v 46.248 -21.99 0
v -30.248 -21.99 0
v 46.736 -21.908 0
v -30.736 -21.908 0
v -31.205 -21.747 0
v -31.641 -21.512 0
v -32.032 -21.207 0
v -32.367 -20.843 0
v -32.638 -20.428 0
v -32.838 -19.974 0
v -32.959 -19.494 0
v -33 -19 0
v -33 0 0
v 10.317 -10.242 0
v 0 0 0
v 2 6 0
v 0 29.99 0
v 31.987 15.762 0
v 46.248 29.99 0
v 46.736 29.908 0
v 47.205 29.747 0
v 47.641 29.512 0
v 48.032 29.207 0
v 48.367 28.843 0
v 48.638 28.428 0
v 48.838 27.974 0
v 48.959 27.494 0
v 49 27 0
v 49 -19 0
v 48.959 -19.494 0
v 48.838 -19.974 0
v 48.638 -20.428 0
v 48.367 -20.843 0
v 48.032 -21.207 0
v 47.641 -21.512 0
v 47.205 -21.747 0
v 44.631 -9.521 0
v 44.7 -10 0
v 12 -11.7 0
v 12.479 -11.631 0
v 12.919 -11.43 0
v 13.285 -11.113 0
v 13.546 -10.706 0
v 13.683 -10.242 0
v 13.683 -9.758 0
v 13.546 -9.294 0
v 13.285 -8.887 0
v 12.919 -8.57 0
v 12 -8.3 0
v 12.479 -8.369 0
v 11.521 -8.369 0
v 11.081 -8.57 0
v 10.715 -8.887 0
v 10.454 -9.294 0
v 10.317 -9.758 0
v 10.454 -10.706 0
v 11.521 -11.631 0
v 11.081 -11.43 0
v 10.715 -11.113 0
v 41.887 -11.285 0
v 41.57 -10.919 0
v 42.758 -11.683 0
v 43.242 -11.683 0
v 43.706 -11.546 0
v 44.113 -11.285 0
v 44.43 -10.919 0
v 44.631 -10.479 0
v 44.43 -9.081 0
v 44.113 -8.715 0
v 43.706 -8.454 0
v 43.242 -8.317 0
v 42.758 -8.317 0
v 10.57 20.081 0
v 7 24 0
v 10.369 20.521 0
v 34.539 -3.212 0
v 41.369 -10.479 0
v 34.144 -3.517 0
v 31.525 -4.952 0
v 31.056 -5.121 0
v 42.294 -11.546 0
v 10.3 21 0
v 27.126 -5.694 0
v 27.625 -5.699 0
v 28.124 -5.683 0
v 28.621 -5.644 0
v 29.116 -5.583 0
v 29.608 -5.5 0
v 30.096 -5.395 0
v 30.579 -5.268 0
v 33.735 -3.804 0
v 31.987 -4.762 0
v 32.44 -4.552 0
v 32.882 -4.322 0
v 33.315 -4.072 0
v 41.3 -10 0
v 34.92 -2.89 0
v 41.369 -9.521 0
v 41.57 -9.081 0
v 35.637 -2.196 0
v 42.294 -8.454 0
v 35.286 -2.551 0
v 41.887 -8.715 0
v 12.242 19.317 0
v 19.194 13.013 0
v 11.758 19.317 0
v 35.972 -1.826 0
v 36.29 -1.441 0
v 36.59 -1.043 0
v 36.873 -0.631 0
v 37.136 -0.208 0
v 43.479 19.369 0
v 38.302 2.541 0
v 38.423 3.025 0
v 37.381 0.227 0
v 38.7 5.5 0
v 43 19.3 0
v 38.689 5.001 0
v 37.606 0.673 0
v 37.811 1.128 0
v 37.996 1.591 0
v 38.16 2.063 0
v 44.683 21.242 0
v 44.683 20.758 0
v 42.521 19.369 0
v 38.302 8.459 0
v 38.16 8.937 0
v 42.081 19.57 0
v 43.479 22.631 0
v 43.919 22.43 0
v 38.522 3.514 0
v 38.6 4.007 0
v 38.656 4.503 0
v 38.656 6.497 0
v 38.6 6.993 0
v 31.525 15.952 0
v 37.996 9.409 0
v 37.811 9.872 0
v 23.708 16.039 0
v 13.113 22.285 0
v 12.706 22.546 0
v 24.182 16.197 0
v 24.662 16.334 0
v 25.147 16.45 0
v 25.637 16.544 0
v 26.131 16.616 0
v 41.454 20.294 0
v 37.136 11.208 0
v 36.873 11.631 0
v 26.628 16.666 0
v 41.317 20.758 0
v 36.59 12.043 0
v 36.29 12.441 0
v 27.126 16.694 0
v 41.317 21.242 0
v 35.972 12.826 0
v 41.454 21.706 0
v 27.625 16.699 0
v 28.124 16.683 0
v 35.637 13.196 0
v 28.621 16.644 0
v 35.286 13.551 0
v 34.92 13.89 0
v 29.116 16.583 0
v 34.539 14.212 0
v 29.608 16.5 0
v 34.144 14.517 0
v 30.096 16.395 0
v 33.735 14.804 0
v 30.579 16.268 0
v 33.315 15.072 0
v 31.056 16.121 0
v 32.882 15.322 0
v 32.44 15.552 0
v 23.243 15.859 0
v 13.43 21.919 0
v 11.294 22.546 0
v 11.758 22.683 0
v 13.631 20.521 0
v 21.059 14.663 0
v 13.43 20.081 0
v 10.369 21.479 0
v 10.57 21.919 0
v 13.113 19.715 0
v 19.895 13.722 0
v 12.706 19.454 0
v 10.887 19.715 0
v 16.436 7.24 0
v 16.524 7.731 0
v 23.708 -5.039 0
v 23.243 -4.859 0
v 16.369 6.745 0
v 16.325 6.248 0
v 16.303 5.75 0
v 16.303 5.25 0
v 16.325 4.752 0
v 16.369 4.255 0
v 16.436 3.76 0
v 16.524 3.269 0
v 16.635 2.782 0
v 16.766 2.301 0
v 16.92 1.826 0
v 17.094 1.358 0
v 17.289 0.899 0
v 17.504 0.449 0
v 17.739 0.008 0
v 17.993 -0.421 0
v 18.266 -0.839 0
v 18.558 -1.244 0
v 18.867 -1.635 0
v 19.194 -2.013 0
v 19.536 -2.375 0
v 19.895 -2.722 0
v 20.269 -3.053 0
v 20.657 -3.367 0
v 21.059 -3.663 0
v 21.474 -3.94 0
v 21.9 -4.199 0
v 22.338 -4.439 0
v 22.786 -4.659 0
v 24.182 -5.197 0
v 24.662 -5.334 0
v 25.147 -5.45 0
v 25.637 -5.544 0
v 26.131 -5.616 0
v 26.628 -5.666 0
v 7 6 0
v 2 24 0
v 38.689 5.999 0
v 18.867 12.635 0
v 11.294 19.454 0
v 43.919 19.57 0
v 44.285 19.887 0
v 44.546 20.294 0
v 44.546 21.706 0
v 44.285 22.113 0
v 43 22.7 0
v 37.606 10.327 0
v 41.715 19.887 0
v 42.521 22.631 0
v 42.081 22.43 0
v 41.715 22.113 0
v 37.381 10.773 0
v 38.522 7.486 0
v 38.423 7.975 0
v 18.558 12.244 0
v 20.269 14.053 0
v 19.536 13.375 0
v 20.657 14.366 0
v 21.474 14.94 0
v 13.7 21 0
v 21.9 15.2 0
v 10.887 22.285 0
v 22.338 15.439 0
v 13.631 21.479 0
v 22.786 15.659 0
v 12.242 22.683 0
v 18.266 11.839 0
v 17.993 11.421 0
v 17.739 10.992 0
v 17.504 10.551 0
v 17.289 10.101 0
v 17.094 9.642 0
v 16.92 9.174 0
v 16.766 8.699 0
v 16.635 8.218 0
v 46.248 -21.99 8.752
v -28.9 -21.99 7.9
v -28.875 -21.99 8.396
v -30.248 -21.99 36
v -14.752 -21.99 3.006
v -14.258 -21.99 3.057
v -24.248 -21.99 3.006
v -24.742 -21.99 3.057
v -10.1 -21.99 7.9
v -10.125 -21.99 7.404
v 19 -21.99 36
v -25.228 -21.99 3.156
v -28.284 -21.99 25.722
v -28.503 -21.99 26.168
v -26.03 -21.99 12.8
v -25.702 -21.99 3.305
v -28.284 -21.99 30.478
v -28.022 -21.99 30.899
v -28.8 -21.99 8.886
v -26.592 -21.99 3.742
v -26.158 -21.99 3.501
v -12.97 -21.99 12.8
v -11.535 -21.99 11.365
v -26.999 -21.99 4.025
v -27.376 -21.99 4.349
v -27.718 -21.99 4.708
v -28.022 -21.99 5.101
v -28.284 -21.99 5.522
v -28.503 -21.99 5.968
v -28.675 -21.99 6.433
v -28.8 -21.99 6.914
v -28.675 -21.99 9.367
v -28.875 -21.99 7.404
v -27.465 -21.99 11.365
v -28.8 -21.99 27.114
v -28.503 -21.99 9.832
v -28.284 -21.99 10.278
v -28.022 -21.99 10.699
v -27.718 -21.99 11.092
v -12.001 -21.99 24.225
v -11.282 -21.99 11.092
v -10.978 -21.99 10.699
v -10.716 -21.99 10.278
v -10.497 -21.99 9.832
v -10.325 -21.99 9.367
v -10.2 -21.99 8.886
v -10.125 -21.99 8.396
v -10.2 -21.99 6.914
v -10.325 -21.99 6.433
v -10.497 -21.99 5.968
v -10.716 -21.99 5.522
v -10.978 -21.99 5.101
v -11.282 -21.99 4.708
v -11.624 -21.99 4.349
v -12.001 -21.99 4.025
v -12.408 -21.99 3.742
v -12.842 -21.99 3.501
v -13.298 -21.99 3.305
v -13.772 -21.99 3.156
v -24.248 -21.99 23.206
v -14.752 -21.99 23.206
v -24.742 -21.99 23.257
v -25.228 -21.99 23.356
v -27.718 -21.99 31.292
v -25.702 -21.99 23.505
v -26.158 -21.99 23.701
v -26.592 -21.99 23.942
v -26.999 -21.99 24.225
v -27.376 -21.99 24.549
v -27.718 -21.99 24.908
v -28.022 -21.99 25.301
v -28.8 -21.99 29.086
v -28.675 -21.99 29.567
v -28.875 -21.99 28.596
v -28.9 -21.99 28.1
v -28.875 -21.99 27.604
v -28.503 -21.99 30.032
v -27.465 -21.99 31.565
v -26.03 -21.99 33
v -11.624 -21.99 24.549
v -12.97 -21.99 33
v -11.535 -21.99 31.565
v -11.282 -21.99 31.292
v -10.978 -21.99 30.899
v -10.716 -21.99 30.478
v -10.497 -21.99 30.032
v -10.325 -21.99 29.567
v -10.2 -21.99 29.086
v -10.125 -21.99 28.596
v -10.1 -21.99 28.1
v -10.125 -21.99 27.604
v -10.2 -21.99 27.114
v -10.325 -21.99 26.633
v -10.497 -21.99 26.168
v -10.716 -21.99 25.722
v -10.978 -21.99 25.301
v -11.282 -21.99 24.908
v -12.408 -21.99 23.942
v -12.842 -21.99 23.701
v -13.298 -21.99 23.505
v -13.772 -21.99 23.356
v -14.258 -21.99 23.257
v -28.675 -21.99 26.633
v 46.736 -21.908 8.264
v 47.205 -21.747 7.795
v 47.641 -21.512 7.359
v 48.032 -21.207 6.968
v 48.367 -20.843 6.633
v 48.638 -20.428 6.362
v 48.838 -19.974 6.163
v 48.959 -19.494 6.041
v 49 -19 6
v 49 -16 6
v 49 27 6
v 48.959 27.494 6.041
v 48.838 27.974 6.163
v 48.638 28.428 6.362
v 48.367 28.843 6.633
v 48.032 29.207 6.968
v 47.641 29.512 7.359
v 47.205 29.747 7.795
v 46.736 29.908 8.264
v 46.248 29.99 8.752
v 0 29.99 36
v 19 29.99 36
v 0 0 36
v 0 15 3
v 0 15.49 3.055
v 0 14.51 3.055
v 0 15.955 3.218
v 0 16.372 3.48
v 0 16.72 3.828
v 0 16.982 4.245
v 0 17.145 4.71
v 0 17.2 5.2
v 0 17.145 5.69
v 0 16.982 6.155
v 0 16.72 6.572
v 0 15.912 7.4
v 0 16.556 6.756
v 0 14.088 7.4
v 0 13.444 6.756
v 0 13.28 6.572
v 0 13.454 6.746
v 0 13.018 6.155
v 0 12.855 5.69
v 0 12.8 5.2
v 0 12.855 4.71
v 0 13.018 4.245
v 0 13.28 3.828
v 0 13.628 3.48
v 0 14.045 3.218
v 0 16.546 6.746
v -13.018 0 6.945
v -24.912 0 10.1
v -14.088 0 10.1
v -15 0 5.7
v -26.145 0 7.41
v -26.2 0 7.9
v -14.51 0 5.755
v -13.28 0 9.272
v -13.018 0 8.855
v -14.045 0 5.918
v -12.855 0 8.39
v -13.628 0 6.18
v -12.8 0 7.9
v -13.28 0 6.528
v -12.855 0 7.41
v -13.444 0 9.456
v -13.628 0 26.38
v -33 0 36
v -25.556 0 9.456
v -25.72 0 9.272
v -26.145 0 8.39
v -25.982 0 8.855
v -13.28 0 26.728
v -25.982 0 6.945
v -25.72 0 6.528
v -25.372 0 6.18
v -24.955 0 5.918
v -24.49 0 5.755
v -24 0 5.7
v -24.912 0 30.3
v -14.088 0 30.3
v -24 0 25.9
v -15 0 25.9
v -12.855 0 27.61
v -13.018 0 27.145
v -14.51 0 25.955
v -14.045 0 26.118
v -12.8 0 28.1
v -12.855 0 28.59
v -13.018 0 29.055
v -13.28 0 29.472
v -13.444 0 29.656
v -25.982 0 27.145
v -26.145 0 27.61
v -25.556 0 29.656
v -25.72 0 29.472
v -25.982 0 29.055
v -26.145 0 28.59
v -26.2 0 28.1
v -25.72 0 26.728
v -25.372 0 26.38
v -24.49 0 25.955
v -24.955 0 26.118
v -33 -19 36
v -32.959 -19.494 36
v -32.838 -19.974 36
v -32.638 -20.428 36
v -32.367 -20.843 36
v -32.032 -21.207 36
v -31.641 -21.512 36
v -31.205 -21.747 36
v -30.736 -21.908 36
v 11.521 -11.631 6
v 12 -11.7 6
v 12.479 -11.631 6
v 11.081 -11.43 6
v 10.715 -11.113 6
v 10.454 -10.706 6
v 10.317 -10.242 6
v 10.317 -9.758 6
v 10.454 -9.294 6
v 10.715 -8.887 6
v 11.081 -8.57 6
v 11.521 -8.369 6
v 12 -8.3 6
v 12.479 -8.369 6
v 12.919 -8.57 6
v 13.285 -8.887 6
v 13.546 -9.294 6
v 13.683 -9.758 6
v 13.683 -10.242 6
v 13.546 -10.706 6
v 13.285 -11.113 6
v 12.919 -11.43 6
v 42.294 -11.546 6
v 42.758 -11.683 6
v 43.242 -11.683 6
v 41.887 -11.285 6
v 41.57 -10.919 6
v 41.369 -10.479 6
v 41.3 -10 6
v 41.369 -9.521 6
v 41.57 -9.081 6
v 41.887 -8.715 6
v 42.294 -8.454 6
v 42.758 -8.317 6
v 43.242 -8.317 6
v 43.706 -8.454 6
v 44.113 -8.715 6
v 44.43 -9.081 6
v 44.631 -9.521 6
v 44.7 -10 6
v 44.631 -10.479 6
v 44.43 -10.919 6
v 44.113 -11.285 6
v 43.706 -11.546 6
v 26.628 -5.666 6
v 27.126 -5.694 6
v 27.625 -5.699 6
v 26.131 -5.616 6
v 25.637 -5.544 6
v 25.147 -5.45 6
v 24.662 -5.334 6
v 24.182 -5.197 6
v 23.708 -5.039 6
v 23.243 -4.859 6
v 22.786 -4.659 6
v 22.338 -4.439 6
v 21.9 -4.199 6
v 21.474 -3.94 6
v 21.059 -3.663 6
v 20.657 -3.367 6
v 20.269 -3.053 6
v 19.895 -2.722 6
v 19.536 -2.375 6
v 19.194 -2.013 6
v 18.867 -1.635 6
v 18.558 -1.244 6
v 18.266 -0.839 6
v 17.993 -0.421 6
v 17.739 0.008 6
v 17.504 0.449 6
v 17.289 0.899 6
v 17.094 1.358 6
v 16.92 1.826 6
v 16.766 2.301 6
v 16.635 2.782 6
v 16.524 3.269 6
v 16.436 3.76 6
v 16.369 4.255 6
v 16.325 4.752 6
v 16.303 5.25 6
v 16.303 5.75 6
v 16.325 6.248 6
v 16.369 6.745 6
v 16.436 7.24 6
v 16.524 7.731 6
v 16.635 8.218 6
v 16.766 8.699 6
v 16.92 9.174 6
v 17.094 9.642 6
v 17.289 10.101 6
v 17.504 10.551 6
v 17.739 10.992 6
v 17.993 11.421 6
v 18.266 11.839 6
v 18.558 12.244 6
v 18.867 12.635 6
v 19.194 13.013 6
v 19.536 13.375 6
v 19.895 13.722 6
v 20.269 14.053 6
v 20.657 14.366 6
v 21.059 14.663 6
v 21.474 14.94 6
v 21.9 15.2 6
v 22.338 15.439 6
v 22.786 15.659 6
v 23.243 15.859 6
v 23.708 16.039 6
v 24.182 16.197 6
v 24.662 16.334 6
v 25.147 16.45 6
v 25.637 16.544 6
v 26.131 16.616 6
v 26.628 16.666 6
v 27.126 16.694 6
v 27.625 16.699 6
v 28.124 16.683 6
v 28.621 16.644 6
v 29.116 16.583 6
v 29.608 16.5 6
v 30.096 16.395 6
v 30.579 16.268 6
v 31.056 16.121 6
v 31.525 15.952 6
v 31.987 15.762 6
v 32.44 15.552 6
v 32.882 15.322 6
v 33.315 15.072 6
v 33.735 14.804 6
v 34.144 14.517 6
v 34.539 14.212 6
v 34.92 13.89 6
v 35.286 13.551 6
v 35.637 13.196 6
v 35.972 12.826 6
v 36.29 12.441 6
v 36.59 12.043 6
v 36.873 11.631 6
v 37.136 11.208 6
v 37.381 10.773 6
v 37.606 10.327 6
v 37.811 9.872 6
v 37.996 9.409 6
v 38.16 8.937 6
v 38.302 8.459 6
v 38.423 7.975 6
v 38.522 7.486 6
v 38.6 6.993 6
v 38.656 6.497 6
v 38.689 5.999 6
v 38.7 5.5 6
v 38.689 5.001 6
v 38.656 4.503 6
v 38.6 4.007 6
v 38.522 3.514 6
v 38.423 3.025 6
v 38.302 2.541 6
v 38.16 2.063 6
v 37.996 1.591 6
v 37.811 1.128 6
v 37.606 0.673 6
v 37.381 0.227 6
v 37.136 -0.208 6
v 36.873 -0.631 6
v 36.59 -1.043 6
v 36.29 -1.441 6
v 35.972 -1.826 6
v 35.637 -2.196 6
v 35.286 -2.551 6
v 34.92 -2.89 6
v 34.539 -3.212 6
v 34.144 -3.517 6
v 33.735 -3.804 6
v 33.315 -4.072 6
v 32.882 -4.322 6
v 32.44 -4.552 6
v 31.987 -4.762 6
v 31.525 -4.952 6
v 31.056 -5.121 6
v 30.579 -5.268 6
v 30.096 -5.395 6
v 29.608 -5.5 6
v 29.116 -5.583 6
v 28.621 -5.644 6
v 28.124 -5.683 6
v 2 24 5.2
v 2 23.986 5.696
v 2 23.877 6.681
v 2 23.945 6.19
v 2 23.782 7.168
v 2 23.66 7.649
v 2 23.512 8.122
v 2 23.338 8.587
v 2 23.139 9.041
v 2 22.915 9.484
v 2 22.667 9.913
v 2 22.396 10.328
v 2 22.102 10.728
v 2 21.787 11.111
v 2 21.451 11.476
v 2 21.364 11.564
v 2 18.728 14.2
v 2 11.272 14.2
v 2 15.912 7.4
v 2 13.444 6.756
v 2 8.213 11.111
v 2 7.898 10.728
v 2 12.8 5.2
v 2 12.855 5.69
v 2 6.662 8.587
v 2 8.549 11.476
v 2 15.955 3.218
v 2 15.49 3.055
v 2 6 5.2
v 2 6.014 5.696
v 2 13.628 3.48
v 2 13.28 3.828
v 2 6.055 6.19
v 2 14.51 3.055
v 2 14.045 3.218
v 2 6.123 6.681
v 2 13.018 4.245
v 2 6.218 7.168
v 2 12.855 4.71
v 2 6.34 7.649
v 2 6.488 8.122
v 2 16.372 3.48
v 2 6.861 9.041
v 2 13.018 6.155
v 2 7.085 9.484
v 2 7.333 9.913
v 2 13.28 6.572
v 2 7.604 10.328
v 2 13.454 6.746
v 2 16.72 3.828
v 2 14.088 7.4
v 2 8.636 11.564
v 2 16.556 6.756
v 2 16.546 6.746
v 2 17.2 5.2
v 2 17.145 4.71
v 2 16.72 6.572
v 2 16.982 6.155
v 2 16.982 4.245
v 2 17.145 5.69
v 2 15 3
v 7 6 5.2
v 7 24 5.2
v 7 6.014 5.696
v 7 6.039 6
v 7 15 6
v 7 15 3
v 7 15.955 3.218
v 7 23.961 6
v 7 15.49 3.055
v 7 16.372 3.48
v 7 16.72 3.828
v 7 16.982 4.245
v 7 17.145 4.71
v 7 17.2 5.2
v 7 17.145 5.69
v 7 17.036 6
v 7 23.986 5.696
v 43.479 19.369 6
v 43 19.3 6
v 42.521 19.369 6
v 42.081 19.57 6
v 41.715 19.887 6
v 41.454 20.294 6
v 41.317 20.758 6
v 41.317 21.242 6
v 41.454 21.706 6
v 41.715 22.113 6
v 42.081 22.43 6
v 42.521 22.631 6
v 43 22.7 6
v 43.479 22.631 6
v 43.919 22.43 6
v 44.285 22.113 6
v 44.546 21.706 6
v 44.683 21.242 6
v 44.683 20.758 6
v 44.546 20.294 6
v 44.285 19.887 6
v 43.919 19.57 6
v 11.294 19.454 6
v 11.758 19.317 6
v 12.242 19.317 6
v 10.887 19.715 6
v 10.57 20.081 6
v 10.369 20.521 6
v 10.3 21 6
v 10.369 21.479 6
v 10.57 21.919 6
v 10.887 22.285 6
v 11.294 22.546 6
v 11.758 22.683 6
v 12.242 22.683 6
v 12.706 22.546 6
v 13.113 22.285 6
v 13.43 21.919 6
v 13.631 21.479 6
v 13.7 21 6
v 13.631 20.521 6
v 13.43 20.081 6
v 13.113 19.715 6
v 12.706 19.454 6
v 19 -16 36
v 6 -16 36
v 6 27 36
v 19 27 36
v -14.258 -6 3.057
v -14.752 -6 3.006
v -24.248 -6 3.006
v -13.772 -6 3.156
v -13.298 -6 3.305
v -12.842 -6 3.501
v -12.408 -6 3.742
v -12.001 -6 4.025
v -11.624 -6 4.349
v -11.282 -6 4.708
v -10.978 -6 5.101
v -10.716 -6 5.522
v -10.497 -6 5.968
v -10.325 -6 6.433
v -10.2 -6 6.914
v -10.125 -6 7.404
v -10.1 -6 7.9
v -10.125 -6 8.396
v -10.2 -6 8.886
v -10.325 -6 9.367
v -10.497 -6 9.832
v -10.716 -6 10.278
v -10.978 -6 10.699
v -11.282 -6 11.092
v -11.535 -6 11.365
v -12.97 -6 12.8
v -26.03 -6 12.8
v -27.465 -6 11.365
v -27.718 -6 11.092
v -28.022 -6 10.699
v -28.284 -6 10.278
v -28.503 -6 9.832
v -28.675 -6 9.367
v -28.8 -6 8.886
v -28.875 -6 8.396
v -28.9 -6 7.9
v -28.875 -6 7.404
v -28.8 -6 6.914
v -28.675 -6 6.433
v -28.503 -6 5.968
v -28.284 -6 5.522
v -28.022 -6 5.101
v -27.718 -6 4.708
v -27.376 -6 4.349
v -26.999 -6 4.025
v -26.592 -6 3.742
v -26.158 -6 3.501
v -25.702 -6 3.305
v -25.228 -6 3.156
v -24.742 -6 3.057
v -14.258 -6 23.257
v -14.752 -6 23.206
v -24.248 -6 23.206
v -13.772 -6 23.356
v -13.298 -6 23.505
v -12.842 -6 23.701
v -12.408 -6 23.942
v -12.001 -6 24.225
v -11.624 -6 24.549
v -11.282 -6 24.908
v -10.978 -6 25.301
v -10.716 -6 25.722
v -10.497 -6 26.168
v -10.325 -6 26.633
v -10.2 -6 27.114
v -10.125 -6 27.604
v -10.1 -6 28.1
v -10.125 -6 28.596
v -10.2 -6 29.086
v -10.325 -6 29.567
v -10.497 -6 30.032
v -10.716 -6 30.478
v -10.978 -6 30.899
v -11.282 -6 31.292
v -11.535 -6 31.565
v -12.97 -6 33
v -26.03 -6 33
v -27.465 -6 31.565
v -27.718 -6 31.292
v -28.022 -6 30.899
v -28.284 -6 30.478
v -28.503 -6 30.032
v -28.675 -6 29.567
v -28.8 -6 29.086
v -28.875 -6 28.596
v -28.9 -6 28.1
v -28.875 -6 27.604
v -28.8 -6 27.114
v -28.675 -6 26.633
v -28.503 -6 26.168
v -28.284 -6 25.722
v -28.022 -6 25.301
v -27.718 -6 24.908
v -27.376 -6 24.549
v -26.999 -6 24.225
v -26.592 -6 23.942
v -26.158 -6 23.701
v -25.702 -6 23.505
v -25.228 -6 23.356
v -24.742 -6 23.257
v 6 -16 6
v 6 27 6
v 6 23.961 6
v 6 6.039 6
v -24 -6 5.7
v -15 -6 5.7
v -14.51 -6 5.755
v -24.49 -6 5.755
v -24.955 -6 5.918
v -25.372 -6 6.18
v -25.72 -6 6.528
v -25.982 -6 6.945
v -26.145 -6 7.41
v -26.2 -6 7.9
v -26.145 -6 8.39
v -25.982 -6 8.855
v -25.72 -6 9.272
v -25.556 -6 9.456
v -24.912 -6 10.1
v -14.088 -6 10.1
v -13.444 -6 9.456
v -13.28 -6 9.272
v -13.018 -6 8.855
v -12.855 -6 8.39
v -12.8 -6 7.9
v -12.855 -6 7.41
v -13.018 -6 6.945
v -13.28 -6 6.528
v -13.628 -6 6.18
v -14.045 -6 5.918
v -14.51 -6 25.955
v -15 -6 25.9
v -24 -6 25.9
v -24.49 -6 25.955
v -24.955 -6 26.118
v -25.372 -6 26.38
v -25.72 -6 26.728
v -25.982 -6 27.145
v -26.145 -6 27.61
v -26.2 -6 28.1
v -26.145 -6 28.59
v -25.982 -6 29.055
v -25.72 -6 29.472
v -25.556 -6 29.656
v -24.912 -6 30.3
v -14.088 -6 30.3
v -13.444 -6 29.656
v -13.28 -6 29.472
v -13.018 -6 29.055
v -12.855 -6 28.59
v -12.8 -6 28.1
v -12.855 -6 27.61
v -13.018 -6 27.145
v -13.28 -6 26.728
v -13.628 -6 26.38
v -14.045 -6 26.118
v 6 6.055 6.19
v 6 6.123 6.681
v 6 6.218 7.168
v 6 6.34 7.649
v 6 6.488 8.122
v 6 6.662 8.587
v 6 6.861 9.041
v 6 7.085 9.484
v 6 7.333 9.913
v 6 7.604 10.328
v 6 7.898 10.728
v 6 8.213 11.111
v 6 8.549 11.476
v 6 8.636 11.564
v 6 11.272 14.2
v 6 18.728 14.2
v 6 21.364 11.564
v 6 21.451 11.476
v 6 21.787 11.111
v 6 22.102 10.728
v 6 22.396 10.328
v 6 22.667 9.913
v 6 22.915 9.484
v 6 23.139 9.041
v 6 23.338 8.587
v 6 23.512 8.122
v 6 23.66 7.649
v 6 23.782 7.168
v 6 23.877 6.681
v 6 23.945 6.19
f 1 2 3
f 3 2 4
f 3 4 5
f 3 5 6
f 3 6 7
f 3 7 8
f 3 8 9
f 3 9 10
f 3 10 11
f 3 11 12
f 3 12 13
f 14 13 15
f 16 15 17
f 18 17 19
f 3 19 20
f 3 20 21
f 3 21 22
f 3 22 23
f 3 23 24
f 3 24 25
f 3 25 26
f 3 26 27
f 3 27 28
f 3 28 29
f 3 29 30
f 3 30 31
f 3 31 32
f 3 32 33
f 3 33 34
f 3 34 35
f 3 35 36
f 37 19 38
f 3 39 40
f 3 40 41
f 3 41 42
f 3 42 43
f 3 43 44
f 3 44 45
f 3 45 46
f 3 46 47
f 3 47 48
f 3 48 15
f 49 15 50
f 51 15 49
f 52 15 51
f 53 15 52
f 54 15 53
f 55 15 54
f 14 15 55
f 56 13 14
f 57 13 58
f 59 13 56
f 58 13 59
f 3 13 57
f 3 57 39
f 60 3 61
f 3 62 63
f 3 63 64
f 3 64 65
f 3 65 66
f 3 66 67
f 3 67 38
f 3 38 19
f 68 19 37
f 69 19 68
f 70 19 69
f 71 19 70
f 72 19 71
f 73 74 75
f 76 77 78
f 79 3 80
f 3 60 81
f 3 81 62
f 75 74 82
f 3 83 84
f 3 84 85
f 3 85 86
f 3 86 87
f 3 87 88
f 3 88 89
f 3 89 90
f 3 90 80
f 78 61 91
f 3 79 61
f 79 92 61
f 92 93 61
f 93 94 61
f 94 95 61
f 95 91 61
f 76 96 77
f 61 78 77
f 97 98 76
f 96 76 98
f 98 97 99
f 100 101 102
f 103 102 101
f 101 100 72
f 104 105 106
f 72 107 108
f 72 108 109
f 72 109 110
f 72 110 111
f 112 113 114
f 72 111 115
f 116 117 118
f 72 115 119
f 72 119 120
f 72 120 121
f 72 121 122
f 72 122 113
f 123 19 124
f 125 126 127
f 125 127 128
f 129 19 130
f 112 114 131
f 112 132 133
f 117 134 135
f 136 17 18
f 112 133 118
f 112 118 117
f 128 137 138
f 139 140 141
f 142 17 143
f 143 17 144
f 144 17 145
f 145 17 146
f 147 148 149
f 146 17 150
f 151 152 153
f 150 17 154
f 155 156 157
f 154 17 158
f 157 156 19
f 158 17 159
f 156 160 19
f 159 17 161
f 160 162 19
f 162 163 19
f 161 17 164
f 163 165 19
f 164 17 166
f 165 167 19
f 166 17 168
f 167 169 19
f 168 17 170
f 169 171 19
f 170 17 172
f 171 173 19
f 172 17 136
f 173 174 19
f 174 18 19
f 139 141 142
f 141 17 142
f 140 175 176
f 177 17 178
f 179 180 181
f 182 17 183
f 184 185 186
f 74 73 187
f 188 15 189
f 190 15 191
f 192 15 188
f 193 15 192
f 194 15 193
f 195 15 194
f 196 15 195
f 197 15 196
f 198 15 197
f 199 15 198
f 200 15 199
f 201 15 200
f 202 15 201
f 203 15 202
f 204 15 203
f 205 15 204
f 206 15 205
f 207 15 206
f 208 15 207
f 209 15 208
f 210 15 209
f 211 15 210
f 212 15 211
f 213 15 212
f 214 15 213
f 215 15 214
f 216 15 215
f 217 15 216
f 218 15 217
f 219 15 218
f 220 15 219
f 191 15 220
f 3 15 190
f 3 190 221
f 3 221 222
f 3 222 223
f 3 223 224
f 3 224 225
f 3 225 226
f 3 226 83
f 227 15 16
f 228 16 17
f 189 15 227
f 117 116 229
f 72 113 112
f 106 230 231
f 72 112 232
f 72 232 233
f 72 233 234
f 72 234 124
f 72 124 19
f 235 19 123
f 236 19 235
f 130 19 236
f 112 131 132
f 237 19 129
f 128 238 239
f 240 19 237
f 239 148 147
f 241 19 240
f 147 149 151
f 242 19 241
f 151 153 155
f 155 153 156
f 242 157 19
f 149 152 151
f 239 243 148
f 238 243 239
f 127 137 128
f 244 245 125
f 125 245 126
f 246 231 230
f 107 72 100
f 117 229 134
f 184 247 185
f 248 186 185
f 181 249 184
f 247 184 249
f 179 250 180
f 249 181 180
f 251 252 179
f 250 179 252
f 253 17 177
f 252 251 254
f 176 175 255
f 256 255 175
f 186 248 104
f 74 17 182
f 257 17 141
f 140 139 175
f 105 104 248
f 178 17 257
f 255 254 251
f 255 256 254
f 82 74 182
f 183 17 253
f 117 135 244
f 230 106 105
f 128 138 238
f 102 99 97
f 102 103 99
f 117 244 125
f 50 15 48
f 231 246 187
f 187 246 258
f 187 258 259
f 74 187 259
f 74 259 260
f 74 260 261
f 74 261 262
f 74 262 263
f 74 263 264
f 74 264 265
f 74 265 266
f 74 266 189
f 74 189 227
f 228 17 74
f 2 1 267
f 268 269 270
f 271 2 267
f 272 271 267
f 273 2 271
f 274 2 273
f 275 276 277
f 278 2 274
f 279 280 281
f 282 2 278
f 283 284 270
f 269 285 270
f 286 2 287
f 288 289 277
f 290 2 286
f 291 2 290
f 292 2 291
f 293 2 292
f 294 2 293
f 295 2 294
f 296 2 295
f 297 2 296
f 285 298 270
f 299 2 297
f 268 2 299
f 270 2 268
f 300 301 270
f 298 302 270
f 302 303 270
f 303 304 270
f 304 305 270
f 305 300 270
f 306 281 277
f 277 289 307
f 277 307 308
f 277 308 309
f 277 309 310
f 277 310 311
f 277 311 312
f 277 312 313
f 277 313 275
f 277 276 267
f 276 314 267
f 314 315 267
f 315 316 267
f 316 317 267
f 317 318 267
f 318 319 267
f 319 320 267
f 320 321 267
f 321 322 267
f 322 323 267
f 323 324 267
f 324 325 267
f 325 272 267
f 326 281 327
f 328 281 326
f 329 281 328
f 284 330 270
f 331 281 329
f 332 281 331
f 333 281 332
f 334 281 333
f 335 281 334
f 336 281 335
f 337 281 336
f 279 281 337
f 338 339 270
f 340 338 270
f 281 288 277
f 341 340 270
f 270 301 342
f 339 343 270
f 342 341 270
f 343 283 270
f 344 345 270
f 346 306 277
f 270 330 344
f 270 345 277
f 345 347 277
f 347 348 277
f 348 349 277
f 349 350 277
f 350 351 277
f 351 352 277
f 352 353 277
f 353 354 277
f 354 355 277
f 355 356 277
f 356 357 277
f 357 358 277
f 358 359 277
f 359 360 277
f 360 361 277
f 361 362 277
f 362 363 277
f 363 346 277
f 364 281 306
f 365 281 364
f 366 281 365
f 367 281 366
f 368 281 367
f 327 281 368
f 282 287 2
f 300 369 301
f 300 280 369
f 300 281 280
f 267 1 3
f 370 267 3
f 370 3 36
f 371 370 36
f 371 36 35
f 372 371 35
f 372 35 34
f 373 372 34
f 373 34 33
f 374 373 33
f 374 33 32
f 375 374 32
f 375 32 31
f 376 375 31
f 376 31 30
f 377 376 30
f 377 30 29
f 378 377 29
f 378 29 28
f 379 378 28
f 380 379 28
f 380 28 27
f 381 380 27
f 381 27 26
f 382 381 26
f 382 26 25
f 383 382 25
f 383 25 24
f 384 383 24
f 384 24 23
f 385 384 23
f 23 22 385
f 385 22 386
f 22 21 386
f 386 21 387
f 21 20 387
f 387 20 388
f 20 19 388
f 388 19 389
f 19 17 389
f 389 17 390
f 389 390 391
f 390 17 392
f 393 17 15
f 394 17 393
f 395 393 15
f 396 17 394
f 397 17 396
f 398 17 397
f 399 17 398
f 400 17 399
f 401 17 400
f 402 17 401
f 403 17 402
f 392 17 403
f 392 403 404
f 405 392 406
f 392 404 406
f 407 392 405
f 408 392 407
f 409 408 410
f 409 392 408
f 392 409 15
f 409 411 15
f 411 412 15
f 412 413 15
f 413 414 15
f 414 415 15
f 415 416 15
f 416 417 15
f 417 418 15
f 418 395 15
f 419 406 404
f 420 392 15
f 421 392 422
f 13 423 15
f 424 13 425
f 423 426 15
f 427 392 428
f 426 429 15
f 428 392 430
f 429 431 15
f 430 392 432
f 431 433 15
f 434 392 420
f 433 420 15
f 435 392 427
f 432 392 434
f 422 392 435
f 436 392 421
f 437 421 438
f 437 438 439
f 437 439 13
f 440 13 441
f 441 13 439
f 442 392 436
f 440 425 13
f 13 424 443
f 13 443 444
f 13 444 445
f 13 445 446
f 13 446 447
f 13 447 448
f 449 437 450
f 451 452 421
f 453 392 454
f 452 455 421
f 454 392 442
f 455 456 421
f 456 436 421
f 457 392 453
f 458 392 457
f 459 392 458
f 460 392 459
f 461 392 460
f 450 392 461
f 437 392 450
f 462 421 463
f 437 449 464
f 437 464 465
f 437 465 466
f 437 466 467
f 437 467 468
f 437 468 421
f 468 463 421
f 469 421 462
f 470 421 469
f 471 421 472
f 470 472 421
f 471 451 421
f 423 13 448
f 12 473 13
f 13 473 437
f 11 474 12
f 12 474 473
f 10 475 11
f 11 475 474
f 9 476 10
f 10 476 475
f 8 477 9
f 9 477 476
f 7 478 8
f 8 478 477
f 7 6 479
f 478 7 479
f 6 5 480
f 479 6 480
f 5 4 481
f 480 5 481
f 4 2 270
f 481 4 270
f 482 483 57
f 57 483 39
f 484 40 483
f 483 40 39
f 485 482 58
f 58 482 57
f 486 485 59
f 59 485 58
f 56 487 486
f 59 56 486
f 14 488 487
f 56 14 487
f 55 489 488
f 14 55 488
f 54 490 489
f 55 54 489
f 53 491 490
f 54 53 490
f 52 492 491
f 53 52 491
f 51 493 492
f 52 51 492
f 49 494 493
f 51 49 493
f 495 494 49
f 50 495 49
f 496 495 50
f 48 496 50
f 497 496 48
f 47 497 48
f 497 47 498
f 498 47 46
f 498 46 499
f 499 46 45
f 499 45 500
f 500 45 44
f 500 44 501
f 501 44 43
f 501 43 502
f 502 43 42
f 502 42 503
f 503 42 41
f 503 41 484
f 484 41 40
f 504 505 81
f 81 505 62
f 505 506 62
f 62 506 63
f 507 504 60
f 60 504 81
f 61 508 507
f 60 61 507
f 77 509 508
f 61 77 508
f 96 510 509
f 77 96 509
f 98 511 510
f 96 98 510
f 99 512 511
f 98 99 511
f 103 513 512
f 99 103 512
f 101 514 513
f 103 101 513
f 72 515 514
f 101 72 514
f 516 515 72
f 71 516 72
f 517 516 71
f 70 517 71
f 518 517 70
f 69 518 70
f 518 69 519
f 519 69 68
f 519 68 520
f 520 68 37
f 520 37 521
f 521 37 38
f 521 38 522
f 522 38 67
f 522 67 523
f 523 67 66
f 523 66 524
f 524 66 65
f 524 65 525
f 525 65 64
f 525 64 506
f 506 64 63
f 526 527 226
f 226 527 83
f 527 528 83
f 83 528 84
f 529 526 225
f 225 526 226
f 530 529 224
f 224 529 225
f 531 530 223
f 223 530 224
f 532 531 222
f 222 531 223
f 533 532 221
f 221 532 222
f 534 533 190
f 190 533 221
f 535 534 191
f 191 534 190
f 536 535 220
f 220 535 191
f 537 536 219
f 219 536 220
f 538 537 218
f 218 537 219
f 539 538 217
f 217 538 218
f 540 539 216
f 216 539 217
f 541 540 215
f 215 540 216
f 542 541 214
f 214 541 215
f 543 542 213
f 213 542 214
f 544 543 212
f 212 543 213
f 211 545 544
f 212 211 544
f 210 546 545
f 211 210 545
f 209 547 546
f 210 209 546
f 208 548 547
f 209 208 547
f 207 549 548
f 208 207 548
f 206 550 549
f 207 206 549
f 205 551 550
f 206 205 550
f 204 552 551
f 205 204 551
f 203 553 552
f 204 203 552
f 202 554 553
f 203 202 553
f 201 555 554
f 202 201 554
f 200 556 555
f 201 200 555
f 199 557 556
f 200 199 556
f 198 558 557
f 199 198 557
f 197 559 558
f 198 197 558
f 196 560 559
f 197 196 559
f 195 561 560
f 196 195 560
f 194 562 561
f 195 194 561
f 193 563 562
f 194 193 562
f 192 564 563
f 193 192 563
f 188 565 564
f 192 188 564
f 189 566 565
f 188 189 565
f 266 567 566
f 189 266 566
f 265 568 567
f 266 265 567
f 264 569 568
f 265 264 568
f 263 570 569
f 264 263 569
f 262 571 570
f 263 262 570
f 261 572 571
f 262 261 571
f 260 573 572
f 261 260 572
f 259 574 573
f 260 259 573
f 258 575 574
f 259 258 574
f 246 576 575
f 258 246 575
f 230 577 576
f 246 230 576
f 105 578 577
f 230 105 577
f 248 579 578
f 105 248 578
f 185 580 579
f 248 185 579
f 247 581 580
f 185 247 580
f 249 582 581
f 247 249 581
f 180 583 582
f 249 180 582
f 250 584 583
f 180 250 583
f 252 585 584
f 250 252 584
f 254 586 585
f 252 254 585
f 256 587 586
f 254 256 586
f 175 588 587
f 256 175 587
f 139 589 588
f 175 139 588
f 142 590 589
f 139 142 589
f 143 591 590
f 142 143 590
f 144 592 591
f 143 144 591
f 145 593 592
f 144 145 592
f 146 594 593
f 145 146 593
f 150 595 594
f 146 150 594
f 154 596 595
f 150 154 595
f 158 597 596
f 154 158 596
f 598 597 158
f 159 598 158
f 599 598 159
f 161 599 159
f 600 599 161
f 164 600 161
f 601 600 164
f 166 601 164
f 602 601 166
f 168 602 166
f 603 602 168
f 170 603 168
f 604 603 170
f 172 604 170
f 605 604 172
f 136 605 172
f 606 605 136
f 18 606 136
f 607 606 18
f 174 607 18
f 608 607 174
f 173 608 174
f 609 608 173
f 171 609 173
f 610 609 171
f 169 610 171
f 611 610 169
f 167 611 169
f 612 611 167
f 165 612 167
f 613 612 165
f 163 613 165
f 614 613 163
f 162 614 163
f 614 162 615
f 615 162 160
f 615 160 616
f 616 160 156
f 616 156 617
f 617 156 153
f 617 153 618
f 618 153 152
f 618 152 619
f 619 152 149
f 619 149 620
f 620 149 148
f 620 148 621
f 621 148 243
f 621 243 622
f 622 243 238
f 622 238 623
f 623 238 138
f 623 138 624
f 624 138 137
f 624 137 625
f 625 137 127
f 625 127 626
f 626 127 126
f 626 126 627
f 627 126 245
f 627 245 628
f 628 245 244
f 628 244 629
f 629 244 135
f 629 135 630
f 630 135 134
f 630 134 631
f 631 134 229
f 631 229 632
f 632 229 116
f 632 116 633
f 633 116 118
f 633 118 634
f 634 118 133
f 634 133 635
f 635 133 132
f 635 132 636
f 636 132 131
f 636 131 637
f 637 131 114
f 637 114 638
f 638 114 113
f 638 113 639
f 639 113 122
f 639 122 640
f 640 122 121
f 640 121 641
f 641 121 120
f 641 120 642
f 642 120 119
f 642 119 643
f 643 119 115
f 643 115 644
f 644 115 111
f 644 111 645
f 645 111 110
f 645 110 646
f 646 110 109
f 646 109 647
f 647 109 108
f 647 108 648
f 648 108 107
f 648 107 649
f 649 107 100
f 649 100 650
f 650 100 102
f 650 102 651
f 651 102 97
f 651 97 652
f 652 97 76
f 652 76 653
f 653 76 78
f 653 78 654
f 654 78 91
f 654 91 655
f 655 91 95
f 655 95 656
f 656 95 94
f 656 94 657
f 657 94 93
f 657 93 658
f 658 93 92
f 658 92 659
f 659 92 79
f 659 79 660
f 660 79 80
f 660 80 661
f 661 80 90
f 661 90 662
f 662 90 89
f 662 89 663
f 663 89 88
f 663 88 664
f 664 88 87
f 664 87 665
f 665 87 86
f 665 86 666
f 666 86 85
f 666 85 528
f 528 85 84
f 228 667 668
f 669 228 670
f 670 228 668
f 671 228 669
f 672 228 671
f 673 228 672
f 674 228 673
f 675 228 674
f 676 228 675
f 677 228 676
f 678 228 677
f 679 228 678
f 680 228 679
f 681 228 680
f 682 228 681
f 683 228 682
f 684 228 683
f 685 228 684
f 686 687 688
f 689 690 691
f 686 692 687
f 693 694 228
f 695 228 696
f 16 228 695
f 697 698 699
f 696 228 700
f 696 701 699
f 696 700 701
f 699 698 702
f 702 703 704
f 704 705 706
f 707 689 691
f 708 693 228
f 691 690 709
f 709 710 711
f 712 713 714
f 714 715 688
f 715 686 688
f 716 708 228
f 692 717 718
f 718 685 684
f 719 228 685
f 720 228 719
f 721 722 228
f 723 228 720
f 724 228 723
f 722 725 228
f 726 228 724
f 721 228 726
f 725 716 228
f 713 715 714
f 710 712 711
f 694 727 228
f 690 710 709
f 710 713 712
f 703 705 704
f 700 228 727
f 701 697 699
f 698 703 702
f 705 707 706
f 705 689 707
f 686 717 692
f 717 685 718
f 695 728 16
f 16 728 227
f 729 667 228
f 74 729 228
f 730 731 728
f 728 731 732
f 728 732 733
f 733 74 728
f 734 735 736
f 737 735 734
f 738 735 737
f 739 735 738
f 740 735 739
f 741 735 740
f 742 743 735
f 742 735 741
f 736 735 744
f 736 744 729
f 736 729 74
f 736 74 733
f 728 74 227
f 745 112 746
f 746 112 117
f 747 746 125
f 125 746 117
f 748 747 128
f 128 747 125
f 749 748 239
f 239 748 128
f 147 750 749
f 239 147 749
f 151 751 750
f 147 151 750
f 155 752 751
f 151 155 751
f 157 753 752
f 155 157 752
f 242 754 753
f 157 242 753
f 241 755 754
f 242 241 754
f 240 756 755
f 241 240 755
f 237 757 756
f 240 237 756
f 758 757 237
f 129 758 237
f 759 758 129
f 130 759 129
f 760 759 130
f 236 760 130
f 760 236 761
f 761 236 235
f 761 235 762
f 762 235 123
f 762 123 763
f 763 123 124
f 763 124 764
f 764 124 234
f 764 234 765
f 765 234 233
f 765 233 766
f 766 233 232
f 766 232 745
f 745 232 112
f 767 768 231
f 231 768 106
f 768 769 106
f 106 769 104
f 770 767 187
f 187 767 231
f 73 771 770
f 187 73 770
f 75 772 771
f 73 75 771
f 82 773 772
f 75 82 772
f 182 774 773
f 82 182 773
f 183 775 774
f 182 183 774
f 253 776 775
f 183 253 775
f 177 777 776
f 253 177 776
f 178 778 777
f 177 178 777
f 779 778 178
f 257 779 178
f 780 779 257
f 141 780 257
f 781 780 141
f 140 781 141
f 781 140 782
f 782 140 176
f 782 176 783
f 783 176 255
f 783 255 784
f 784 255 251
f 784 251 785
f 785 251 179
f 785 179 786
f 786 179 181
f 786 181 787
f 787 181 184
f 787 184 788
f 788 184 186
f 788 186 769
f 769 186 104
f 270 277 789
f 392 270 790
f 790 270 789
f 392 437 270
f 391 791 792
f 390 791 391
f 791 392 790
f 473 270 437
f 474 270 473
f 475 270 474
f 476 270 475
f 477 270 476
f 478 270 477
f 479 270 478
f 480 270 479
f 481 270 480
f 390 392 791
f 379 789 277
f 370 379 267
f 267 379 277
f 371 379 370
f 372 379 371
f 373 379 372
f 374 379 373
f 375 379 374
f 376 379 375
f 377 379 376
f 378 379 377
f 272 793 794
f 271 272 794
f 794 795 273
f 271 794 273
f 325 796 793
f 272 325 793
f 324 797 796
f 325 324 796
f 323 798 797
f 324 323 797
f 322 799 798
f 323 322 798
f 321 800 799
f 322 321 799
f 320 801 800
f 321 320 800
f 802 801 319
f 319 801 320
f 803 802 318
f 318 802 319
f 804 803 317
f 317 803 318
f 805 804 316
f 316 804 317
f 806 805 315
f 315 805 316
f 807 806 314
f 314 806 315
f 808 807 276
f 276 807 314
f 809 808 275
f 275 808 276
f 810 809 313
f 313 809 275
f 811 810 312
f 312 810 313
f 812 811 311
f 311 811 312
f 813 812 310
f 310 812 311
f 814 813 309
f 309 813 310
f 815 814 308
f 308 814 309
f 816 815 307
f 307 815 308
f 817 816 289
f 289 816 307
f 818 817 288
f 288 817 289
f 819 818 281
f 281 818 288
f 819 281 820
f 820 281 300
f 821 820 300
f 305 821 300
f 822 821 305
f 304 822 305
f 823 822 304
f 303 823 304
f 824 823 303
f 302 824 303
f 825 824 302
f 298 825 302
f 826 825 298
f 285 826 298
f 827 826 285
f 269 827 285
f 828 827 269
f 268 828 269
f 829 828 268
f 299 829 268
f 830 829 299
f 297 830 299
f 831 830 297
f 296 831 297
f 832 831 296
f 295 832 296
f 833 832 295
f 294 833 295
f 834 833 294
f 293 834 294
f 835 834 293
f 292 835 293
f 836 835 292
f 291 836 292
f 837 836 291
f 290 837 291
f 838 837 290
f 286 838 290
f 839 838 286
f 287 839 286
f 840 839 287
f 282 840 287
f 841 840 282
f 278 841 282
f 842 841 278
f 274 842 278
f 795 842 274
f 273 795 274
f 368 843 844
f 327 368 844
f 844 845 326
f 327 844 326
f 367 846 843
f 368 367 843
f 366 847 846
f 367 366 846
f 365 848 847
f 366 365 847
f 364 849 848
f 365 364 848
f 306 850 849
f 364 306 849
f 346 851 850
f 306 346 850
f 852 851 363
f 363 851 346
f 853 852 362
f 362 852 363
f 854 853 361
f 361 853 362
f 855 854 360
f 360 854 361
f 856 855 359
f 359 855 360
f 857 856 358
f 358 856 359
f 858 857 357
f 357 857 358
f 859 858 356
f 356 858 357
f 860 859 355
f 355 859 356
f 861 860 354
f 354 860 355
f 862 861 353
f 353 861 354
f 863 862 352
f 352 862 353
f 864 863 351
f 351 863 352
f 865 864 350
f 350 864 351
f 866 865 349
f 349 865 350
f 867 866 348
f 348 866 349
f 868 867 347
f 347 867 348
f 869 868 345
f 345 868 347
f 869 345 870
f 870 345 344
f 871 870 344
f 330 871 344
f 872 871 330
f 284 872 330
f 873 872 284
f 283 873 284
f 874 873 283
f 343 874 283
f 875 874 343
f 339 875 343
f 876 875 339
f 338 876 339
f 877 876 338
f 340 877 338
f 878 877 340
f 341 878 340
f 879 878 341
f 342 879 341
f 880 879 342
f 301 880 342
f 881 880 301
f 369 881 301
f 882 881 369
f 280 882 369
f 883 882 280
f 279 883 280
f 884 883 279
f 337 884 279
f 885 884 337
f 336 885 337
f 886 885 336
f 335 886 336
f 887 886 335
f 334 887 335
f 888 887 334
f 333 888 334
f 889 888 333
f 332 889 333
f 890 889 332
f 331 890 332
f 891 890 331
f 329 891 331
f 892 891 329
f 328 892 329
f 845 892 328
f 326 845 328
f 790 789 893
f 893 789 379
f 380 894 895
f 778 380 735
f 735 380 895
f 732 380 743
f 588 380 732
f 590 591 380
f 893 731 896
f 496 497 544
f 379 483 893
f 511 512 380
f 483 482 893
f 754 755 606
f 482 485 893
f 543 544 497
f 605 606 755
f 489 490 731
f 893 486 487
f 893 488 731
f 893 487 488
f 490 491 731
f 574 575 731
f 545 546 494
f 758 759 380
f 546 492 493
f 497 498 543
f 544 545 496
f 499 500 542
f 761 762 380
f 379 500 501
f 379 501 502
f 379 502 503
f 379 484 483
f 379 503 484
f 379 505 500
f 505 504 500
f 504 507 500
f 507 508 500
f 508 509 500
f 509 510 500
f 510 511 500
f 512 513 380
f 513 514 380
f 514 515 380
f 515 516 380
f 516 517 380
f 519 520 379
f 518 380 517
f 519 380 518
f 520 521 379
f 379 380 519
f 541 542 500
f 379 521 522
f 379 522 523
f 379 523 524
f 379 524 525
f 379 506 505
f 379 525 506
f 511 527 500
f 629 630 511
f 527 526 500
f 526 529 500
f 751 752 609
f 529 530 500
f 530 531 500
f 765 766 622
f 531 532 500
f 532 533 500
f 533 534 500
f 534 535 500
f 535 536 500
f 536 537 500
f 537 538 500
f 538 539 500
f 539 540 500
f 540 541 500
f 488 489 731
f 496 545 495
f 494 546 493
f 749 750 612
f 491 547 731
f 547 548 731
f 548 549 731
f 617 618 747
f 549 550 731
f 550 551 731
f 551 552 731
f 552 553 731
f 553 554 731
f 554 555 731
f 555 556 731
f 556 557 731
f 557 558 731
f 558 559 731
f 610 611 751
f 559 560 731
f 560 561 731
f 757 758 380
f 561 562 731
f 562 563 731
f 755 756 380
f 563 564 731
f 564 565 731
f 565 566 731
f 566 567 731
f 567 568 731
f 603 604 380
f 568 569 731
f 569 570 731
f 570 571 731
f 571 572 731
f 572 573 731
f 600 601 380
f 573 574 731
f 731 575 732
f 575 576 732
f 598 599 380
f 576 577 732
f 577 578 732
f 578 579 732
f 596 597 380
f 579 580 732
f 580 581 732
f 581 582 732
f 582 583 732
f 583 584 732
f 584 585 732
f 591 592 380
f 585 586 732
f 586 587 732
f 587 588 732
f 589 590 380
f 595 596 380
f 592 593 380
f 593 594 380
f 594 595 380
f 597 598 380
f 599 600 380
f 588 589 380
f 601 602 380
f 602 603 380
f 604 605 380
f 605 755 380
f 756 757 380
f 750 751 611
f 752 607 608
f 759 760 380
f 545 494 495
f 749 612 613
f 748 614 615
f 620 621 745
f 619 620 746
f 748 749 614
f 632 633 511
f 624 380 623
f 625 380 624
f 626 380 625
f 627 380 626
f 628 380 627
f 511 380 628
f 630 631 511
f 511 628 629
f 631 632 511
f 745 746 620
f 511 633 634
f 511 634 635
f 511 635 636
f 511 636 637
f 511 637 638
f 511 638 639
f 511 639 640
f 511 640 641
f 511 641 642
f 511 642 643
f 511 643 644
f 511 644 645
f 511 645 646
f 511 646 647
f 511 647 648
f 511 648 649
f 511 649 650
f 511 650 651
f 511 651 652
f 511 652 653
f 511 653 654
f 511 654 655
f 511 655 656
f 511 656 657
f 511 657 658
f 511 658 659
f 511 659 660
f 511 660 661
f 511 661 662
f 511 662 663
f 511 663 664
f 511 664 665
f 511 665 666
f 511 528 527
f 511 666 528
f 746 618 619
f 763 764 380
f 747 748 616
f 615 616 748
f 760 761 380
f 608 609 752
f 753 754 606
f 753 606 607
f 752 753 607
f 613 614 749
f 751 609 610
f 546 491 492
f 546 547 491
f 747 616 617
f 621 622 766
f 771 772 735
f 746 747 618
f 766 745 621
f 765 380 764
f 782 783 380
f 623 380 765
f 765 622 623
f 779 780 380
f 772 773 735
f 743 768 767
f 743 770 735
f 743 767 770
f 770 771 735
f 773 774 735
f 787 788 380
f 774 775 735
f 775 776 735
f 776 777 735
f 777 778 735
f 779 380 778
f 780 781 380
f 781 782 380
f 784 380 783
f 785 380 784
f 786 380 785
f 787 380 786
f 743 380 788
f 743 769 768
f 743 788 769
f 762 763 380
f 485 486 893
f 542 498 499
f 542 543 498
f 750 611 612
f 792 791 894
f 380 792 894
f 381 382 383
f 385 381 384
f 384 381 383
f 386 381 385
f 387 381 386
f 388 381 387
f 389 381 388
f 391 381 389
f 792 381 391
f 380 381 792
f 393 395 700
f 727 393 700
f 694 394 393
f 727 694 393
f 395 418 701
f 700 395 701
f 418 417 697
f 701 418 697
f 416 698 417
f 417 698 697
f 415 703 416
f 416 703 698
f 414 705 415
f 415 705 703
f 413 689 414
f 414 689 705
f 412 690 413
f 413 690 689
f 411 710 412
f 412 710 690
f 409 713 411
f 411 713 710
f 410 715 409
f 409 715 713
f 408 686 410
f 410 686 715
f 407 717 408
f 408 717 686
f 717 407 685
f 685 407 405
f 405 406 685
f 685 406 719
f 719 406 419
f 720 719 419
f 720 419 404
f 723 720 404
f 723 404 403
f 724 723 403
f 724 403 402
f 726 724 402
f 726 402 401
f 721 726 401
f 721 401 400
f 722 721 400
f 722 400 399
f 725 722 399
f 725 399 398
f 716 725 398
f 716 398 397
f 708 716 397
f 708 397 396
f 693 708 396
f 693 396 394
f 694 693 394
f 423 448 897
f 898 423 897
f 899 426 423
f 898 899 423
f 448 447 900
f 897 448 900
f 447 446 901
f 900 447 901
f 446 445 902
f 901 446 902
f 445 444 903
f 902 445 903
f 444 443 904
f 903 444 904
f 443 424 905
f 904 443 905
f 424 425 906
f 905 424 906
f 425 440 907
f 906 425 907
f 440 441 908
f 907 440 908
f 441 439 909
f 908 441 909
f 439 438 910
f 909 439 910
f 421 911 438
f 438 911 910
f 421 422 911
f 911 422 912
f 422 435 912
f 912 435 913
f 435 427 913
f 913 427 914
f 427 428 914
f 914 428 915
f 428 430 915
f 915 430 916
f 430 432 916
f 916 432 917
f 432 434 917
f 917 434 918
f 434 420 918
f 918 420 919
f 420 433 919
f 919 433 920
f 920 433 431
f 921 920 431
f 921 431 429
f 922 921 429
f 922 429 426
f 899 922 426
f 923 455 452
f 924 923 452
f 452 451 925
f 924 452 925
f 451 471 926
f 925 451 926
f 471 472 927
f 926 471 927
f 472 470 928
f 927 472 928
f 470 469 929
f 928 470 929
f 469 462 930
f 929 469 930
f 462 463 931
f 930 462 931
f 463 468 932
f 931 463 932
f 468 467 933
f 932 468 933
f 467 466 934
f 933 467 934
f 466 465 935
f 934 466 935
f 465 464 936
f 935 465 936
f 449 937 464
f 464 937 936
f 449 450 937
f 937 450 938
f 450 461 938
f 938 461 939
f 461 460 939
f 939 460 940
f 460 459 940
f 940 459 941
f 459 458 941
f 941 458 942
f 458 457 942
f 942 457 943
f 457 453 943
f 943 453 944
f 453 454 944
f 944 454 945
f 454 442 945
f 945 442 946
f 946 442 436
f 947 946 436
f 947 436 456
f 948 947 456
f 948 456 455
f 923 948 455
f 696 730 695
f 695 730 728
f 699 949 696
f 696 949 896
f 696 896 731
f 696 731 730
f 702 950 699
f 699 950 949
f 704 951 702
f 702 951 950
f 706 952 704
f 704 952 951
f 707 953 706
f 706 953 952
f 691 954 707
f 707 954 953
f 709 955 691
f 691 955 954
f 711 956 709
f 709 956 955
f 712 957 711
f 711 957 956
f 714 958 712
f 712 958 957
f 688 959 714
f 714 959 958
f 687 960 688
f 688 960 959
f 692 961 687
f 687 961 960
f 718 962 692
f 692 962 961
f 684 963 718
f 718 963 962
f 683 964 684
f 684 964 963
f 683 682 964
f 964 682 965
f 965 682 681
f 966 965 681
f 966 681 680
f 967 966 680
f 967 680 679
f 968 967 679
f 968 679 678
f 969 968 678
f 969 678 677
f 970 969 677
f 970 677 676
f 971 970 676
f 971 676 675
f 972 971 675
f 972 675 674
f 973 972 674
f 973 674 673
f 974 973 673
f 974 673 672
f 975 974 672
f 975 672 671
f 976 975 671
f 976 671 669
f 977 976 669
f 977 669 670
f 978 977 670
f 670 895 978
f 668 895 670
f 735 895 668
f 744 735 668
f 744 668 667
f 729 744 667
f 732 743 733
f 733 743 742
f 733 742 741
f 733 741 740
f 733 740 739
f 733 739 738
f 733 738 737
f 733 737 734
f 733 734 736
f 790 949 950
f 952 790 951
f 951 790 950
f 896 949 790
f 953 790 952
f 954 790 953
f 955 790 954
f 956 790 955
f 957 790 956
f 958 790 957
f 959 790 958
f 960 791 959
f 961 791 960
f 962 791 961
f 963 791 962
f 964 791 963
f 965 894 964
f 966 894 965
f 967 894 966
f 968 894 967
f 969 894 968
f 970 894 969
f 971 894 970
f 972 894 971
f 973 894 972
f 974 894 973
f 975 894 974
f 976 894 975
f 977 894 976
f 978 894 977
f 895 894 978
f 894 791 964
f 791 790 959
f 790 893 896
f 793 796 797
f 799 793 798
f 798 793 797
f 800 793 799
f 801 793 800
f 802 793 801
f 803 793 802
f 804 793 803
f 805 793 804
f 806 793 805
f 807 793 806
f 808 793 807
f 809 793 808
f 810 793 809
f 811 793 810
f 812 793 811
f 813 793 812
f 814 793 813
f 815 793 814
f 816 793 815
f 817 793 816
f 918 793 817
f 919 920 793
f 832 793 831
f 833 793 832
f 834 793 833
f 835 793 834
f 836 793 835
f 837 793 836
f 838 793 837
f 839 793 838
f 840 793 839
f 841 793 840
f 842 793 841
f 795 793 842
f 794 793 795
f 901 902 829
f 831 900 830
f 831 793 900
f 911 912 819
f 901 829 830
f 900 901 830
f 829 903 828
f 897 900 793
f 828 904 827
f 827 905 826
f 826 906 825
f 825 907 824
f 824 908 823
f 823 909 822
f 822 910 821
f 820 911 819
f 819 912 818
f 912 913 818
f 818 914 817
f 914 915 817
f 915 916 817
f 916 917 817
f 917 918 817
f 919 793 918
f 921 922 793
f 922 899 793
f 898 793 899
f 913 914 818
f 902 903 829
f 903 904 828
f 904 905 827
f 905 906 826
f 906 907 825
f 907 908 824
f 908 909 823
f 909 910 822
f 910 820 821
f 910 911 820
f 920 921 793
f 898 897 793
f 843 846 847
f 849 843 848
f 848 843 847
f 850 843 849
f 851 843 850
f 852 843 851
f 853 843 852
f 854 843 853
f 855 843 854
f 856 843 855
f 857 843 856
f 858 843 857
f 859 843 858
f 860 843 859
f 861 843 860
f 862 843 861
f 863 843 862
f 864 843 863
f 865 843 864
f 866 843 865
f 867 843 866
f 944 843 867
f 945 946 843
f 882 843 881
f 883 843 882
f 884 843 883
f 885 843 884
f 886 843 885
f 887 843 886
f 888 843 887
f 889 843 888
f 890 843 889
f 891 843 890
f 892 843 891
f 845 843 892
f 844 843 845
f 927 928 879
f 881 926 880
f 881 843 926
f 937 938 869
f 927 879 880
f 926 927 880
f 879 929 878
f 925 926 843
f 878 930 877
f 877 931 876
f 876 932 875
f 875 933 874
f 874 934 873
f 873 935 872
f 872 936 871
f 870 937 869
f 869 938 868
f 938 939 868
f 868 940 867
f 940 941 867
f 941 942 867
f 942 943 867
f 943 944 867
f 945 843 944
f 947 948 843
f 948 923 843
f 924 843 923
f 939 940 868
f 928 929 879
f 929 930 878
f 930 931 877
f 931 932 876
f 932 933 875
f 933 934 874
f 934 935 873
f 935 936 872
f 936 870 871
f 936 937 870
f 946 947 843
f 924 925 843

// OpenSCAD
// file: functions.scad
/*******************************************************************

This OpenSCAD code and its rendered 3D model are part of the

	Kühling&Kühling RepRap Industrial 3D Printer


All details, BOM, assembling instructions and latest sources:
	http://kuehlingkuehling.de

Designed and developed by:
	Jonas Kühling <mail@jonaskuehling.de>
	Simon Kühling <mail@simonkuehling.de>

Licensed under:
	Creative Commons Attribution-ShareAlike
	CC BY-SA 3.0
	http://creativecommons.org/licenses/by-sa/3.0/

*******************************************************************/

module teardrop (r=4.5,h=20,alpha=45,teardropcorner=0,fulldrop=0){		// tear drop hole for top-centering
											// use teardropcorner=1 for bottom horizontal corners
	render()
	translate([-h/2,0,0])
		rotate([-270,0+(teardropcorner*180),90])
			difference(){
				linear_extrude(height=h){
					circle(r);
					polygon(points=[[0,0],[r*cos(alpha),r*sin(alpha)],[0,r/sin(alpha)],[-r*cos(alpha),r*sin(alpha)]], paths=[[0,1,2,3]]);
				}
				if(fulldrop==0) 
					translate([0,(r/sin(alpha))/2+r,h/2]) cube([2*r+2,r/sin(alpha),h+2],center=true);
			}
}

//teardrop(4.5,22,fulldrop=true);



module teardropcentering (r=4.5,h=20,alpha=45){				// tear drop hole for top-centering
	centering_offset_factor = 1.1;
	render()
	translate([-h/2,0,0])
		rotate([-270,0,90])
			difference(){
				linear_extrude(height=h){
					circle(r, $fn=24);
					polygon(points=[[0,0],[r*cos(alpha),r*sin(alpha)],[0,r/sin(alpha)],[-r*cos(alpha),r*sin(alpha)]], paths=[[0,1,2,3]]);
				}
				translate([0,(r/sin(alpha))/2+r*centering_offset_factor,h/2]) cube([2*r+2,r/sin(alpha),h+2],center=true);
			}
}

//teardropcentering();



module teardropcentering_half (r=4.5,h=20, bottom=0,alpha=45){				// tear drop hole for top-centering
																// upper half (bottom=0) or bottom half (bottom=1)
	centering_offset_factor = 1.2;
	render()
	translate([-h/2,0,0])
		rotate([-270,0,90])
			difference(){
				linear_extrude(height=h){
					circle(r, $fn=24);
					polygon(points=[[0,0],[r*cos(alpha),r*sin(alpha)],[0,r/sin(alpha)],[-r*cos(alpha),r*sin(alpha)]], paths=[[0,1,2,3]]);
				}
				translate([0,(r/sin(alpha))/2+r*centering_offset_factor,h/2]) cube([2*r+2,r/sin(alpha),h+2],center=true);
				translate([0,-(r*centering_offset_factor)/2-0.5+bottom*(r*centering_offset_factor+1),h/2]) cube([2*r+2,r*centering_offset_factor+1,h+2],center=true);
			}
}

//teardropcentering_half(bottom=0);


module polyhole(d,h){
	n = max(round(2 * d),3);
	cylinder(h = h, r = (d / 2) / cos (180 / n), $fn = n, center=true);
}



module roundcorner(radius,edge_length){
	render()
	translate([0,0,-1])
		difference(){
			translate([-1,-1,0])
				cube(size = [radius+1,radius+1,edge_length+2], center = false);
			translate(v = [radius,radius,-1])
				cylinder(h = edge_length+4, r=radius, center=false,$fs=0.1);
		}
}

//roundcorner(5,5);



module roundcorner_tear(radius,edge_length){
	render()
	difference(){
		translate([-1,-1,-1])
			cube(size = [edge_length+2, radius+1, radius+1], center = false);
		translate([(edge_length+4)/2-2, radius, radius])
			teardrop(radius, edge_length+4,teardropcorner=1);
	}
}

//roundcorner_tear(8,20);


module roundedge_tear(radius){
	render()
	difference(){
		translate([-1,-1,-1])
			cube(size = [radius+1, radius+1, radius+1], center = false);
		translate([radius,radius,radius])
			union(){
				sphere(r=radius, $fs=0.1);
				translate([0,0,-radius])
					cylinder(r1=(radius*sin(45))-(radius-(radius*sin(45))),r2=radius*sin(45),h=(radius-(radius*sin(45))), $fs=0.1);
			}
	}
}

//roundedge_tear(20);



module roundedge(radius){
	render()
	difference(){
		translate([-1,-1,-1])
			cube(size = [radius+1, radius+1, radius+1], center = false);
		translate([radius,radius,radius])
			sphere(r=radius, $fs=0.1);
	}
}

//roundedge(5);


module nut_trap(nut_wrench_size,trap_height,vertical=0, clearance=0.2,center=true){		// M3 wrench size = 5.5
	radius = cornerdiameter(nut_wrench_size+2*clearance) /2;
	rotate([0,vertical*90,0])
		cylinder(h = trap_height, r = radius, center=center, $fn = 6);
}

//nut_trap(5,5,0);

module nut_slot(nut_wrench_size,nut_height, nut_elevation,vertical=0, clearance=0.2){		// M3 wrench size = 5.5
	radius = cornerdiameter(nut_wrench_size+2*clearance) /2;
	slot_height = nut_height+2*clearance;
	slot_width = nut_wrench_size+2*clearance;
	rotate([0,vertical*270,0]){
		cylinder(h = slot_height, r = radius, center=true, $fn = 6);
		translate([0,-slot_width/2,-slot_height/2]) cube([nut_elevation+1,slot_width,slot_height]);
	}
}

//nut_slot(5.5,3,4,1);

function cornerdiameter(wrench_size) =  2* ((wrench_size)/2)/ cos(180/6);
function cornerdiameter_8(wrench_size) =  2* ((wrench_size)/2)/ cos(180/8);
// main file
/*******************************************************************

This OpenSCAD code and its rendered 3D model are part of the

	Kühling&Kühling RepRap Industrial 3D Printer


All details, BOM, assembling instructions and latest sources:
	http://kuehlingkuehling.de

Designed and developed by:
	Jonas Kühling <mail@jonaskuehling.de>
	Simon Kühling <mail@simonkuehling.de>

License:
	Creative Commons Attribution-ShareAlike 4.0 International (CC BY-SA 4.0)
	https://creativecommons.org/licenses/by-sa/4.0/

*******************************************************************/

include <configuration.scad>




// RENDER
rotate([0,-90,0]) y_motor_mount();




module y_motor_mount(){
	difference(){

		// main body
		translate([0,frame_width,-y_motor_mount_body_height+frame_width+wall])
			hull(){
				translate([0,-wall,y_motor_mount_body_height-wall])
					rotate([0,90,0])
						cylinder(r=wall,h=y_motor_mount_body_width);
				translate([0,-wall,wall])
					rotate([0,90,0])
						cylinder(r=wall,h=y_motor_mount_body_width);
				translate([0,-y_motor_mount_body_length+wall,y_motor_mount_body_height-wall])
					rotate([0,90,0])
						cylinder(r=wall,h=y_motor_mount_body_width);
				translate([0,-y_motor_mount_body_length+wall,wall])
					rotate([0,90,0])
						cylinder(r=wall,h=y_motor_mount_body_width);
			}

		// cut excess material
		translate([2*wall,0,-y_motor_mount_body_height+frame_width+wall])
			rotate([0,45,0])
				translate([0,-(y_motor_mount_body_length+2)+frame_width+1,-y_motor_mount_body_height])
					cube([y_motor_mount_body_height,y_motor_mount_body_length+2,2*y_motor_mount_body_height]);
			

		// frame clearance
		translate([-1,0,0])
			cube([y_motor_mount_body_width+2,frame_width+1,frame_width+wall+1]);

		// y motor belt tensioning thumbwheel and stud bolt clearance
		translate([wall+clearance+frame_screw_dia/2,frame_width/2,y_motor_mount_body_height/2-2*wall-1])
			rotate([0,90,0])
				teardrop(frame_screw_dia/2+clearance,y_motor_mount_body_height);
		hull(){
			translate([wall+clearance+frame_screw_dia/2,frame_width/2,(m4_flat_knurled_nut_height+1)/2-1-2*wall])
				rotate([0,90,0])
					teardrop(m4_flat_knurled_nut_dia/2+wall_thin,m4_flat_knurled_nut_height+1);
			translate([-wall,frame_width/2,(m4_flat_knurled_nut_height+1)/2-1-2*wall])
				rotate([0,90,0])
					teardrop(m4_flat_knurled_nut_dia/2+wall_thin,m4_flat_knurled_nut_height+1);
		}


		// nema17 mount
		translate([2*wall,-nema17_width+frame_width-wall,-nema17_width-2*wall])
			cube([y_motor_mount_body_width,nema17_width,nema17_width]);
		translate([-1,frame_width-wall-nema17_width/2,-nema17_width/2-2*wall])
			rotate([0,90,0])
				cylinder(r=nema17_center_dia/2+clearance,h=y_motor_mount_body_width+2);
		translate([-1,frame_width-wall-nema17_width/2,-nema17_width/2-2*wall])
			for(j=[0:3])
				rotate([j*90,0,0])
					translate([0,nema17_hole_dist/2,nema17_hole_dist/2])
						rotate([0,90,0])
							cylinder(r=nema17_screw_dia/2+clearance,h=y_motor_mount_body_width+2);

		// frame mount holes
		translate([y_motor_mount_body_width/2,0,0])
			for(i=[-1,1])
				translate([i*(y_motor_mount_body_width/2-(wall+clearance+frame_screw_head_flange_dia/2)),0,0]){
					hull(){
						translate([0,-y_motor_mount_body_length/2+frame_width,frame_width/2])
							rotate([0,0,90])
								rotate([90,0,0])
									teardrop(frame_screw_dia/2+clearance,y_motor_mount_body_length+2);
						translate([0,-y_motor_mount_body_length/2+frame_width,frame_width/2+2*wall+wall])
							rotate([0,0,90])
								rotate([90,0,0])
									teardrop(frame_screw_dia/2+clearance,y_motor_mount_body_length+2);
					}
					hull(){
						translate([0,-y_motor_mount_body_length/2-2*wall,frame_width/2])
							rotate([0,0,90])
								rotate([90,0,0])
									teardrop(frame_screw_head_flange_dia/2+clearance,y_motor_mount_body_length);
						translate([0,-y_motor_mount_body_length/2-2*wall,frame_width/2+2*wall+wall])
							rotate([0,0,90])
								rotate([90,0,0])
									teardrop(frame_screw_head_flange_dia/2+clearance,y_motor_mount_body_length);
					}
				}
	}
}
